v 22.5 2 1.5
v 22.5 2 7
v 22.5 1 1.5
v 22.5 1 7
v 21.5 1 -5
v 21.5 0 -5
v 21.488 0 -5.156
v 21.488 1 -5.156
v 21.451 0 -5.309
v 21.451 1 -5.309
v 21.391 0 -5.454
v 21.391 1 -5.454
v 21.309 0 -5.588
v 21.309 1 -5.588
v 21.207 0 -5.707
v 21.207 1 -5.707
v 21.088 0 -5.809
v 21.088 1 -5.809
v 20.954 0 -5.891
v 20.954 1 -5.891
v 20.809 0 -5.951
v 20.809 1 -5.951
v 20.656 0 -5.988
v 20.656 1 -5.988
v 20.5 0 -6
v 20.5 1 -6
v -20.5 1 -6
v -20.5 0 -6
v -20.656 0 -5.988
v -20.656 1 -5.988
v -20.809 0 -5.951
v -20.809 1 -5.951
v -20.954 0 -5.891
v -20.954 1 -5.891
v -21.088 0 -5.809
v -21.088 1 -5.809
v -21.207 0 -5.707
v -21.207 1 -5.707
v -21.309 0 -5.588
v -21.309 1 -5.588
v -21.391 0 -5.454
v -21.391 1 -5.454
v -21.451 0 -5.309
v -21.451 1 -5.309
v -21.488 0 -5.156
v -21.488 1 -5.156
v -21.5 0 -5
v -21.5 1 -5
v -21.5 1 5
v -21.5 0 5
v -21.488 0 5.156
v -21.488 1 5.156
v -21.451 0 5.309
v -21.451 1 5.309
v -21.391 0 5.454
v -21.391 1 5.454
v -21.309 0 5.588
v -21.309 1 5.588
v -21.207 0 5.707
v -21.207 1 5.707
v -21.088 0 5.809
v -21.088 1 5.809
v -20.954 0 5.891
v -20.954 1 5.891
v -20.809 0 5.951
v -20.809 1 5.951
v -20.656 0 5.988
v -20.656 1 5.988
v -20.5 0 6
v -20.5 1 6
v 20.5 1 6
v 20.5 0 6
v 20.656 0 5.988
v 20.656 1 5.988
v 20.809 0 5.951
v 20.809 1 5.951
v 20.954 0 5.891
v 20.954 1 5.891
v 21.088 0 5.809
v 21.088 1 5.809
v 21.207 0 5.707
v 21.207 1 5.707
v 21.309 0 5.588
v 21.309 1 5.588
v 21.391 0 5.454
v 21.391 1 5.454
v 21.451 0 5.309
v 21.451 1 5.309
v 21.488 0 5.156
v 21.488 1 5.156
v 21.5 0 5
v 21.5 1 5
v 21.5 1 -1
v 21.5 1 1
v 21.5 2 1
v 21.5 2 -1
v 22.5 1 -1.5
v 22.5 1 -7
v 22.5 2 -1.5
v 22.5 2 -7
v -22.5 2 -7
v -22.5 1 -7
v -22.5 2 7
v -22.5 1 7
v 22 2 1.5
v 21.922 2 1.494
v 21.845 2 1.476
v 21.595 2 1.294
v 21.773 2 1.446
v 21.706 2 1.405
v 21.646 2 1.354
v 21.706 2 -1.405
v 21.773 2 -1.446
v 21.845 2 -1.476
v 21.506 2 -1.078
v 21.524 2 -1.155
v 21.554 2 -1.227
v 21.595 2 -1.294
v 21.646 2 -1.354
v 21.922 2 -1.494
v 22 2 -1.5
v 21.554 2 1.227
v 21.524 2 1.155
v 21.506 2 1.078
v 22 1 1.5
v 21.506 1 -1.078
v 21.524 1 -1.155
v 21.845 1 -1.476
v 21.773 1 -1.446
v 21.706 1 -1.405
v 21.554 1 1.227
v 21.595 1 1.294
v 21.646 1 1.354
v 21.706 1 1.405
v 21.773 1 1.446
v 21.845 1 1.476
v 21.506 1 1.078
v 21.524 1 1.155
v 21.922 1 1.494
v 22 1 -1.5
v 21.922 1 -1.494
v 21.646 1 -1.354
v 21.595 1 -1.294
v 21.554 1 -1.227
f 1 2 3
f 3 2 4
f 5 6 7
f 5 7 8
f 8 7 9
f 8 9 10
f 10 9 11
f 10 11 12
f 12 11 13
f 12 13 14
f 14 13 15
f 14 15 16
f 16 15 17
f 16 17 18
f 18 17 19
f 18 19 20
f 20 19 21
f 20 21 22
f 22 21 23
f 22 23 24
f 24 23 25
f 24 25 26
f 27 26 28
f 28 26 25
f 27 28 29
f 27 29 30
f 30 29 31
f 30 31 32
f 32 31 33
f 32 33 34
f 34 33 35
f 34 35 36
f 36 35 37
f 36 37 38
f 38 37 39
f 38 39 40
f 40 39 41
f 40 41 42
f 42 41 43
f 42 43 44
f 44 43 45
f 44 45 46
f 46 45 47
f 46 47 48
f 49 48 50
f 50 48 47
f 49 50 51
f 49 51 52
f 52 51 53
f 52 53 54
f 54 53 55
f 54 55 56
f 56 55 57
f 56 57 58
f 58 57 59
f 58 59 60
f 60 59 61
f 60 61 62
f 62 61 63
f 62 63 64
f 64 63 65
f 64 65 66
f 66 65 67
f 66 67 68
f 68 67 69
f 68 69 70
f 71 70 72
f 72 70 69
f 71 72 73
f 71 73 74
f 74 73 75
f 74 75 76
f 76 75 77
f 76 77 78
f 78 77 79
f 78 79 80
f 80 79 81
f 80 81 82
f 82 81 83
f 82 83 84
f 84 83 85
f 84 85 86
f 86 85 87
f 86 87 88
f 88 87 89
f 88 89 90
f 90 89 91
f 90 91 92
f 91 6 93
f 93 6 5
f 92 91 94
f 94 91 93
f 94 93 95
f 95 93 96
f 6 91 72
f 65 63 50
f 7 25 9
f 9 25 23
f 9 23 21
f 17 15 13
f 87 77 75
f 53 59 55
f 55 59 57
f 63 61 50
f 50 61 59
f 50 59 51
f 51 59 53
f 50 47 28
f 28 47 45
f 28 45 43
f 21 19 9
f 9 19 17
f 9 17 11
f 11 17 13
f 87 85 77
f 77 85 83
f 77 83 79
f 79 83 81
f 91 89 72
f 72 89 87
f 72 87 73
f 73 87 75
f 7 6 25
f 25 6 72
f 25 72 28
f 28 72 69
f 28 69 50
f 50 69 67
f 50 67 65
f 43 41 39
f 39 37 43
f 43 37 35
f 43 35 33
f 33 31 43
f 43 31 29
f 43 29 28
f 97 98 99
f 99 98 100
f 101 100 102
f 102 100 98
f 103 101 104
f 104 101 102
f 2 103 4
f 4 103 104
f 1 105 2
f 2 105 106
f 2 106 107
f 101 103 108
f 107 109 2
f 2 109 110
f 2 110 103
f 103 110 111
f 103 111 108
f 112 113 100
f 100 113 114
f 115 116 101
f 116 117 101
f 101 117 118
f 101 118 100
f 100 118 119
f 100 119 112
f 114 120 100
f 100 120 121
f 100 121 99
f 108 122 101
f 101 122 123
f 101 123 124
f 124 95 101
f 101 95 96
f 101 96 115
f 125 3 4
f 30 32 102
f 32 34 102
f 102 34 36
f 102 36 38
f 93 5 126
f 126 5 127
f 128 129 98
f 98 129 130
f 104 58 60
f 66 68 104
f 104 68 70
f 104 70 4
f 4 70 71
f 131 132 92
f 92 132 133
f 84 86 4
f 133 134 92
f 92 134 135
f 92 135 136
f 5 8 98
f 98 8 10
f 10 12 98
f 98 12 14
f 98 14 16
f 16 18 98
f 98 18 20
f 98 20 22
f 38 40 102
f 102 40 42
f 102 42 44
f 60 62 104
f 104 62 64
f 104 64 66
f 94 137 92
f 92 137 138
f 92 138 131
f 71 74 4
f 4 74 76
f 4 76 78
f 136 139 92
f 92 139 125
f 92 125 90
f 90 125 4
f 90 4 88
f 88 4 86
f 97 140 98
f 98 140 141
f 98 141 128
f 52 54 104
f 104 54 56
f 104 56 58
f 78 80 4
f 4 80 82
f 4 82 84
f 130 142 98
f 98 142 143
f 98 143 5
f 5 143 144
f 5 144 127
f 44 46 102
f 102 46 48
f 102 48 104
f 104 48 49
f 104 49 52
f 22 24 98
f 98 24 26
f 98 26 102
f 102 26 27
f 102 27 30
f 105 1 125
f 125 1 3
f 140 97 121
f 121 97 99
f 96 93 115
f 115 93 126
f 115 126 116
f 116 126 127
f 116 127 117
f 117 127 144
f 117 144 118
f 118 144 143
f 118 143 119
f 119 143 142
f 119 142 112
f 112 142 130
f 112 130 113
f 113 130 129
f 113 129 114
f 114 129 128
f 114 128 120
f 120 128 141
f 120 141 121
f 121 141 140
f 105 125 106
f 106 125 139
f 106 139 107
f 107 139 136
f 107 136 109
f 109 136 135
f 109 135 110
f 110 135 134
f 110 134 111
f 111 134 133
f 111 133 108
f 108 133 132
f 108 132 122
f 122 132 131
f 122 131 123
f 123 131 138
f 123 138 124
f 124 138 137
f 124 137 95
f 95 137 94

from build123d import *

# Parameters (mm, degrees)
BOSS_EXTRUDE1_DEPTH = 1
SKETCH2_W           = 45
SKETCH2_H           = 14
BOSS_EXTRUDE2_DEPTH = 1
SKETCH3_W           = 1
SKETCH3_H           = 3
CUT_EXTRUDE1_DEPTH  = 1
FILLET1_R           = 0.5


with BuildPart() as part:
    # Sketch1 → Boss-Extrude1 (new body)
    with BuildSketch(Plane(origin=(0, 0, 0), x_dir=(1, 0, 0), z_dir=(0, 1, 0))):
        with BuildLine():
            Line((-20.5, -6), (20.5, -6))
            ThreePointArc((20.5, -6), (21.207106781, -5.707106781), (21.5, -5))
            Line((21.5, -5), (21.5, 5))
            ThreePointArc((21.5, 5), (21.207106781, 5.707106781), (20.5, 6))
            Line((20.5, 6), (-20.5, 6))
            ThreePointArc((-20.5, 6), (-21.207106781, 5.707106781), (-21.5, 5))
            Line((-21.5, 5), (-21.5, -5))
            ThreePointArc((-21.5, -5), (-21.207106781, -5.707106781), (-20.5, -6))
        make_face()
    extrude(amount=BOSS_EXTRUDE1_DEPTH)

    # Sketch2 → Boss-Extrude2 (add)
    with BuildSketch(Plane(origin=(0, 1, 0), x_dir=(1, 0, 0), z_dir=(0, 1, 0))):
        Rectangle(SKETCH2_W, SKETCH2_H)
    extrude(amount=BOSS_EXTRUDE2_DEPTH)

    # Sketch3 → Cut-Extrude1 (cut)
    with BuildSketch(Plane(origin=(0, 2, 0), x_dir=(1, 0, 0), z_dir=(0, 1, 0))):
        with Locations((22, 0)):
            Rectangle(SKETCH3_W, SKETCH3_H)
    extrude(amount=-CUT_EXTRUDE1_DEPTH, mode=Mode.SUBTRACT)

    # Fillet1
    fillet1_edges = [part.edges().sort_by_distance(p)[0] for p in [
        (21.5, 1.5, 1.5),
        (21.5, 1.5, -1.5),
    ]]
    fillet(fillet1_edges, radius=FILLET1_R)


solid = part.part
